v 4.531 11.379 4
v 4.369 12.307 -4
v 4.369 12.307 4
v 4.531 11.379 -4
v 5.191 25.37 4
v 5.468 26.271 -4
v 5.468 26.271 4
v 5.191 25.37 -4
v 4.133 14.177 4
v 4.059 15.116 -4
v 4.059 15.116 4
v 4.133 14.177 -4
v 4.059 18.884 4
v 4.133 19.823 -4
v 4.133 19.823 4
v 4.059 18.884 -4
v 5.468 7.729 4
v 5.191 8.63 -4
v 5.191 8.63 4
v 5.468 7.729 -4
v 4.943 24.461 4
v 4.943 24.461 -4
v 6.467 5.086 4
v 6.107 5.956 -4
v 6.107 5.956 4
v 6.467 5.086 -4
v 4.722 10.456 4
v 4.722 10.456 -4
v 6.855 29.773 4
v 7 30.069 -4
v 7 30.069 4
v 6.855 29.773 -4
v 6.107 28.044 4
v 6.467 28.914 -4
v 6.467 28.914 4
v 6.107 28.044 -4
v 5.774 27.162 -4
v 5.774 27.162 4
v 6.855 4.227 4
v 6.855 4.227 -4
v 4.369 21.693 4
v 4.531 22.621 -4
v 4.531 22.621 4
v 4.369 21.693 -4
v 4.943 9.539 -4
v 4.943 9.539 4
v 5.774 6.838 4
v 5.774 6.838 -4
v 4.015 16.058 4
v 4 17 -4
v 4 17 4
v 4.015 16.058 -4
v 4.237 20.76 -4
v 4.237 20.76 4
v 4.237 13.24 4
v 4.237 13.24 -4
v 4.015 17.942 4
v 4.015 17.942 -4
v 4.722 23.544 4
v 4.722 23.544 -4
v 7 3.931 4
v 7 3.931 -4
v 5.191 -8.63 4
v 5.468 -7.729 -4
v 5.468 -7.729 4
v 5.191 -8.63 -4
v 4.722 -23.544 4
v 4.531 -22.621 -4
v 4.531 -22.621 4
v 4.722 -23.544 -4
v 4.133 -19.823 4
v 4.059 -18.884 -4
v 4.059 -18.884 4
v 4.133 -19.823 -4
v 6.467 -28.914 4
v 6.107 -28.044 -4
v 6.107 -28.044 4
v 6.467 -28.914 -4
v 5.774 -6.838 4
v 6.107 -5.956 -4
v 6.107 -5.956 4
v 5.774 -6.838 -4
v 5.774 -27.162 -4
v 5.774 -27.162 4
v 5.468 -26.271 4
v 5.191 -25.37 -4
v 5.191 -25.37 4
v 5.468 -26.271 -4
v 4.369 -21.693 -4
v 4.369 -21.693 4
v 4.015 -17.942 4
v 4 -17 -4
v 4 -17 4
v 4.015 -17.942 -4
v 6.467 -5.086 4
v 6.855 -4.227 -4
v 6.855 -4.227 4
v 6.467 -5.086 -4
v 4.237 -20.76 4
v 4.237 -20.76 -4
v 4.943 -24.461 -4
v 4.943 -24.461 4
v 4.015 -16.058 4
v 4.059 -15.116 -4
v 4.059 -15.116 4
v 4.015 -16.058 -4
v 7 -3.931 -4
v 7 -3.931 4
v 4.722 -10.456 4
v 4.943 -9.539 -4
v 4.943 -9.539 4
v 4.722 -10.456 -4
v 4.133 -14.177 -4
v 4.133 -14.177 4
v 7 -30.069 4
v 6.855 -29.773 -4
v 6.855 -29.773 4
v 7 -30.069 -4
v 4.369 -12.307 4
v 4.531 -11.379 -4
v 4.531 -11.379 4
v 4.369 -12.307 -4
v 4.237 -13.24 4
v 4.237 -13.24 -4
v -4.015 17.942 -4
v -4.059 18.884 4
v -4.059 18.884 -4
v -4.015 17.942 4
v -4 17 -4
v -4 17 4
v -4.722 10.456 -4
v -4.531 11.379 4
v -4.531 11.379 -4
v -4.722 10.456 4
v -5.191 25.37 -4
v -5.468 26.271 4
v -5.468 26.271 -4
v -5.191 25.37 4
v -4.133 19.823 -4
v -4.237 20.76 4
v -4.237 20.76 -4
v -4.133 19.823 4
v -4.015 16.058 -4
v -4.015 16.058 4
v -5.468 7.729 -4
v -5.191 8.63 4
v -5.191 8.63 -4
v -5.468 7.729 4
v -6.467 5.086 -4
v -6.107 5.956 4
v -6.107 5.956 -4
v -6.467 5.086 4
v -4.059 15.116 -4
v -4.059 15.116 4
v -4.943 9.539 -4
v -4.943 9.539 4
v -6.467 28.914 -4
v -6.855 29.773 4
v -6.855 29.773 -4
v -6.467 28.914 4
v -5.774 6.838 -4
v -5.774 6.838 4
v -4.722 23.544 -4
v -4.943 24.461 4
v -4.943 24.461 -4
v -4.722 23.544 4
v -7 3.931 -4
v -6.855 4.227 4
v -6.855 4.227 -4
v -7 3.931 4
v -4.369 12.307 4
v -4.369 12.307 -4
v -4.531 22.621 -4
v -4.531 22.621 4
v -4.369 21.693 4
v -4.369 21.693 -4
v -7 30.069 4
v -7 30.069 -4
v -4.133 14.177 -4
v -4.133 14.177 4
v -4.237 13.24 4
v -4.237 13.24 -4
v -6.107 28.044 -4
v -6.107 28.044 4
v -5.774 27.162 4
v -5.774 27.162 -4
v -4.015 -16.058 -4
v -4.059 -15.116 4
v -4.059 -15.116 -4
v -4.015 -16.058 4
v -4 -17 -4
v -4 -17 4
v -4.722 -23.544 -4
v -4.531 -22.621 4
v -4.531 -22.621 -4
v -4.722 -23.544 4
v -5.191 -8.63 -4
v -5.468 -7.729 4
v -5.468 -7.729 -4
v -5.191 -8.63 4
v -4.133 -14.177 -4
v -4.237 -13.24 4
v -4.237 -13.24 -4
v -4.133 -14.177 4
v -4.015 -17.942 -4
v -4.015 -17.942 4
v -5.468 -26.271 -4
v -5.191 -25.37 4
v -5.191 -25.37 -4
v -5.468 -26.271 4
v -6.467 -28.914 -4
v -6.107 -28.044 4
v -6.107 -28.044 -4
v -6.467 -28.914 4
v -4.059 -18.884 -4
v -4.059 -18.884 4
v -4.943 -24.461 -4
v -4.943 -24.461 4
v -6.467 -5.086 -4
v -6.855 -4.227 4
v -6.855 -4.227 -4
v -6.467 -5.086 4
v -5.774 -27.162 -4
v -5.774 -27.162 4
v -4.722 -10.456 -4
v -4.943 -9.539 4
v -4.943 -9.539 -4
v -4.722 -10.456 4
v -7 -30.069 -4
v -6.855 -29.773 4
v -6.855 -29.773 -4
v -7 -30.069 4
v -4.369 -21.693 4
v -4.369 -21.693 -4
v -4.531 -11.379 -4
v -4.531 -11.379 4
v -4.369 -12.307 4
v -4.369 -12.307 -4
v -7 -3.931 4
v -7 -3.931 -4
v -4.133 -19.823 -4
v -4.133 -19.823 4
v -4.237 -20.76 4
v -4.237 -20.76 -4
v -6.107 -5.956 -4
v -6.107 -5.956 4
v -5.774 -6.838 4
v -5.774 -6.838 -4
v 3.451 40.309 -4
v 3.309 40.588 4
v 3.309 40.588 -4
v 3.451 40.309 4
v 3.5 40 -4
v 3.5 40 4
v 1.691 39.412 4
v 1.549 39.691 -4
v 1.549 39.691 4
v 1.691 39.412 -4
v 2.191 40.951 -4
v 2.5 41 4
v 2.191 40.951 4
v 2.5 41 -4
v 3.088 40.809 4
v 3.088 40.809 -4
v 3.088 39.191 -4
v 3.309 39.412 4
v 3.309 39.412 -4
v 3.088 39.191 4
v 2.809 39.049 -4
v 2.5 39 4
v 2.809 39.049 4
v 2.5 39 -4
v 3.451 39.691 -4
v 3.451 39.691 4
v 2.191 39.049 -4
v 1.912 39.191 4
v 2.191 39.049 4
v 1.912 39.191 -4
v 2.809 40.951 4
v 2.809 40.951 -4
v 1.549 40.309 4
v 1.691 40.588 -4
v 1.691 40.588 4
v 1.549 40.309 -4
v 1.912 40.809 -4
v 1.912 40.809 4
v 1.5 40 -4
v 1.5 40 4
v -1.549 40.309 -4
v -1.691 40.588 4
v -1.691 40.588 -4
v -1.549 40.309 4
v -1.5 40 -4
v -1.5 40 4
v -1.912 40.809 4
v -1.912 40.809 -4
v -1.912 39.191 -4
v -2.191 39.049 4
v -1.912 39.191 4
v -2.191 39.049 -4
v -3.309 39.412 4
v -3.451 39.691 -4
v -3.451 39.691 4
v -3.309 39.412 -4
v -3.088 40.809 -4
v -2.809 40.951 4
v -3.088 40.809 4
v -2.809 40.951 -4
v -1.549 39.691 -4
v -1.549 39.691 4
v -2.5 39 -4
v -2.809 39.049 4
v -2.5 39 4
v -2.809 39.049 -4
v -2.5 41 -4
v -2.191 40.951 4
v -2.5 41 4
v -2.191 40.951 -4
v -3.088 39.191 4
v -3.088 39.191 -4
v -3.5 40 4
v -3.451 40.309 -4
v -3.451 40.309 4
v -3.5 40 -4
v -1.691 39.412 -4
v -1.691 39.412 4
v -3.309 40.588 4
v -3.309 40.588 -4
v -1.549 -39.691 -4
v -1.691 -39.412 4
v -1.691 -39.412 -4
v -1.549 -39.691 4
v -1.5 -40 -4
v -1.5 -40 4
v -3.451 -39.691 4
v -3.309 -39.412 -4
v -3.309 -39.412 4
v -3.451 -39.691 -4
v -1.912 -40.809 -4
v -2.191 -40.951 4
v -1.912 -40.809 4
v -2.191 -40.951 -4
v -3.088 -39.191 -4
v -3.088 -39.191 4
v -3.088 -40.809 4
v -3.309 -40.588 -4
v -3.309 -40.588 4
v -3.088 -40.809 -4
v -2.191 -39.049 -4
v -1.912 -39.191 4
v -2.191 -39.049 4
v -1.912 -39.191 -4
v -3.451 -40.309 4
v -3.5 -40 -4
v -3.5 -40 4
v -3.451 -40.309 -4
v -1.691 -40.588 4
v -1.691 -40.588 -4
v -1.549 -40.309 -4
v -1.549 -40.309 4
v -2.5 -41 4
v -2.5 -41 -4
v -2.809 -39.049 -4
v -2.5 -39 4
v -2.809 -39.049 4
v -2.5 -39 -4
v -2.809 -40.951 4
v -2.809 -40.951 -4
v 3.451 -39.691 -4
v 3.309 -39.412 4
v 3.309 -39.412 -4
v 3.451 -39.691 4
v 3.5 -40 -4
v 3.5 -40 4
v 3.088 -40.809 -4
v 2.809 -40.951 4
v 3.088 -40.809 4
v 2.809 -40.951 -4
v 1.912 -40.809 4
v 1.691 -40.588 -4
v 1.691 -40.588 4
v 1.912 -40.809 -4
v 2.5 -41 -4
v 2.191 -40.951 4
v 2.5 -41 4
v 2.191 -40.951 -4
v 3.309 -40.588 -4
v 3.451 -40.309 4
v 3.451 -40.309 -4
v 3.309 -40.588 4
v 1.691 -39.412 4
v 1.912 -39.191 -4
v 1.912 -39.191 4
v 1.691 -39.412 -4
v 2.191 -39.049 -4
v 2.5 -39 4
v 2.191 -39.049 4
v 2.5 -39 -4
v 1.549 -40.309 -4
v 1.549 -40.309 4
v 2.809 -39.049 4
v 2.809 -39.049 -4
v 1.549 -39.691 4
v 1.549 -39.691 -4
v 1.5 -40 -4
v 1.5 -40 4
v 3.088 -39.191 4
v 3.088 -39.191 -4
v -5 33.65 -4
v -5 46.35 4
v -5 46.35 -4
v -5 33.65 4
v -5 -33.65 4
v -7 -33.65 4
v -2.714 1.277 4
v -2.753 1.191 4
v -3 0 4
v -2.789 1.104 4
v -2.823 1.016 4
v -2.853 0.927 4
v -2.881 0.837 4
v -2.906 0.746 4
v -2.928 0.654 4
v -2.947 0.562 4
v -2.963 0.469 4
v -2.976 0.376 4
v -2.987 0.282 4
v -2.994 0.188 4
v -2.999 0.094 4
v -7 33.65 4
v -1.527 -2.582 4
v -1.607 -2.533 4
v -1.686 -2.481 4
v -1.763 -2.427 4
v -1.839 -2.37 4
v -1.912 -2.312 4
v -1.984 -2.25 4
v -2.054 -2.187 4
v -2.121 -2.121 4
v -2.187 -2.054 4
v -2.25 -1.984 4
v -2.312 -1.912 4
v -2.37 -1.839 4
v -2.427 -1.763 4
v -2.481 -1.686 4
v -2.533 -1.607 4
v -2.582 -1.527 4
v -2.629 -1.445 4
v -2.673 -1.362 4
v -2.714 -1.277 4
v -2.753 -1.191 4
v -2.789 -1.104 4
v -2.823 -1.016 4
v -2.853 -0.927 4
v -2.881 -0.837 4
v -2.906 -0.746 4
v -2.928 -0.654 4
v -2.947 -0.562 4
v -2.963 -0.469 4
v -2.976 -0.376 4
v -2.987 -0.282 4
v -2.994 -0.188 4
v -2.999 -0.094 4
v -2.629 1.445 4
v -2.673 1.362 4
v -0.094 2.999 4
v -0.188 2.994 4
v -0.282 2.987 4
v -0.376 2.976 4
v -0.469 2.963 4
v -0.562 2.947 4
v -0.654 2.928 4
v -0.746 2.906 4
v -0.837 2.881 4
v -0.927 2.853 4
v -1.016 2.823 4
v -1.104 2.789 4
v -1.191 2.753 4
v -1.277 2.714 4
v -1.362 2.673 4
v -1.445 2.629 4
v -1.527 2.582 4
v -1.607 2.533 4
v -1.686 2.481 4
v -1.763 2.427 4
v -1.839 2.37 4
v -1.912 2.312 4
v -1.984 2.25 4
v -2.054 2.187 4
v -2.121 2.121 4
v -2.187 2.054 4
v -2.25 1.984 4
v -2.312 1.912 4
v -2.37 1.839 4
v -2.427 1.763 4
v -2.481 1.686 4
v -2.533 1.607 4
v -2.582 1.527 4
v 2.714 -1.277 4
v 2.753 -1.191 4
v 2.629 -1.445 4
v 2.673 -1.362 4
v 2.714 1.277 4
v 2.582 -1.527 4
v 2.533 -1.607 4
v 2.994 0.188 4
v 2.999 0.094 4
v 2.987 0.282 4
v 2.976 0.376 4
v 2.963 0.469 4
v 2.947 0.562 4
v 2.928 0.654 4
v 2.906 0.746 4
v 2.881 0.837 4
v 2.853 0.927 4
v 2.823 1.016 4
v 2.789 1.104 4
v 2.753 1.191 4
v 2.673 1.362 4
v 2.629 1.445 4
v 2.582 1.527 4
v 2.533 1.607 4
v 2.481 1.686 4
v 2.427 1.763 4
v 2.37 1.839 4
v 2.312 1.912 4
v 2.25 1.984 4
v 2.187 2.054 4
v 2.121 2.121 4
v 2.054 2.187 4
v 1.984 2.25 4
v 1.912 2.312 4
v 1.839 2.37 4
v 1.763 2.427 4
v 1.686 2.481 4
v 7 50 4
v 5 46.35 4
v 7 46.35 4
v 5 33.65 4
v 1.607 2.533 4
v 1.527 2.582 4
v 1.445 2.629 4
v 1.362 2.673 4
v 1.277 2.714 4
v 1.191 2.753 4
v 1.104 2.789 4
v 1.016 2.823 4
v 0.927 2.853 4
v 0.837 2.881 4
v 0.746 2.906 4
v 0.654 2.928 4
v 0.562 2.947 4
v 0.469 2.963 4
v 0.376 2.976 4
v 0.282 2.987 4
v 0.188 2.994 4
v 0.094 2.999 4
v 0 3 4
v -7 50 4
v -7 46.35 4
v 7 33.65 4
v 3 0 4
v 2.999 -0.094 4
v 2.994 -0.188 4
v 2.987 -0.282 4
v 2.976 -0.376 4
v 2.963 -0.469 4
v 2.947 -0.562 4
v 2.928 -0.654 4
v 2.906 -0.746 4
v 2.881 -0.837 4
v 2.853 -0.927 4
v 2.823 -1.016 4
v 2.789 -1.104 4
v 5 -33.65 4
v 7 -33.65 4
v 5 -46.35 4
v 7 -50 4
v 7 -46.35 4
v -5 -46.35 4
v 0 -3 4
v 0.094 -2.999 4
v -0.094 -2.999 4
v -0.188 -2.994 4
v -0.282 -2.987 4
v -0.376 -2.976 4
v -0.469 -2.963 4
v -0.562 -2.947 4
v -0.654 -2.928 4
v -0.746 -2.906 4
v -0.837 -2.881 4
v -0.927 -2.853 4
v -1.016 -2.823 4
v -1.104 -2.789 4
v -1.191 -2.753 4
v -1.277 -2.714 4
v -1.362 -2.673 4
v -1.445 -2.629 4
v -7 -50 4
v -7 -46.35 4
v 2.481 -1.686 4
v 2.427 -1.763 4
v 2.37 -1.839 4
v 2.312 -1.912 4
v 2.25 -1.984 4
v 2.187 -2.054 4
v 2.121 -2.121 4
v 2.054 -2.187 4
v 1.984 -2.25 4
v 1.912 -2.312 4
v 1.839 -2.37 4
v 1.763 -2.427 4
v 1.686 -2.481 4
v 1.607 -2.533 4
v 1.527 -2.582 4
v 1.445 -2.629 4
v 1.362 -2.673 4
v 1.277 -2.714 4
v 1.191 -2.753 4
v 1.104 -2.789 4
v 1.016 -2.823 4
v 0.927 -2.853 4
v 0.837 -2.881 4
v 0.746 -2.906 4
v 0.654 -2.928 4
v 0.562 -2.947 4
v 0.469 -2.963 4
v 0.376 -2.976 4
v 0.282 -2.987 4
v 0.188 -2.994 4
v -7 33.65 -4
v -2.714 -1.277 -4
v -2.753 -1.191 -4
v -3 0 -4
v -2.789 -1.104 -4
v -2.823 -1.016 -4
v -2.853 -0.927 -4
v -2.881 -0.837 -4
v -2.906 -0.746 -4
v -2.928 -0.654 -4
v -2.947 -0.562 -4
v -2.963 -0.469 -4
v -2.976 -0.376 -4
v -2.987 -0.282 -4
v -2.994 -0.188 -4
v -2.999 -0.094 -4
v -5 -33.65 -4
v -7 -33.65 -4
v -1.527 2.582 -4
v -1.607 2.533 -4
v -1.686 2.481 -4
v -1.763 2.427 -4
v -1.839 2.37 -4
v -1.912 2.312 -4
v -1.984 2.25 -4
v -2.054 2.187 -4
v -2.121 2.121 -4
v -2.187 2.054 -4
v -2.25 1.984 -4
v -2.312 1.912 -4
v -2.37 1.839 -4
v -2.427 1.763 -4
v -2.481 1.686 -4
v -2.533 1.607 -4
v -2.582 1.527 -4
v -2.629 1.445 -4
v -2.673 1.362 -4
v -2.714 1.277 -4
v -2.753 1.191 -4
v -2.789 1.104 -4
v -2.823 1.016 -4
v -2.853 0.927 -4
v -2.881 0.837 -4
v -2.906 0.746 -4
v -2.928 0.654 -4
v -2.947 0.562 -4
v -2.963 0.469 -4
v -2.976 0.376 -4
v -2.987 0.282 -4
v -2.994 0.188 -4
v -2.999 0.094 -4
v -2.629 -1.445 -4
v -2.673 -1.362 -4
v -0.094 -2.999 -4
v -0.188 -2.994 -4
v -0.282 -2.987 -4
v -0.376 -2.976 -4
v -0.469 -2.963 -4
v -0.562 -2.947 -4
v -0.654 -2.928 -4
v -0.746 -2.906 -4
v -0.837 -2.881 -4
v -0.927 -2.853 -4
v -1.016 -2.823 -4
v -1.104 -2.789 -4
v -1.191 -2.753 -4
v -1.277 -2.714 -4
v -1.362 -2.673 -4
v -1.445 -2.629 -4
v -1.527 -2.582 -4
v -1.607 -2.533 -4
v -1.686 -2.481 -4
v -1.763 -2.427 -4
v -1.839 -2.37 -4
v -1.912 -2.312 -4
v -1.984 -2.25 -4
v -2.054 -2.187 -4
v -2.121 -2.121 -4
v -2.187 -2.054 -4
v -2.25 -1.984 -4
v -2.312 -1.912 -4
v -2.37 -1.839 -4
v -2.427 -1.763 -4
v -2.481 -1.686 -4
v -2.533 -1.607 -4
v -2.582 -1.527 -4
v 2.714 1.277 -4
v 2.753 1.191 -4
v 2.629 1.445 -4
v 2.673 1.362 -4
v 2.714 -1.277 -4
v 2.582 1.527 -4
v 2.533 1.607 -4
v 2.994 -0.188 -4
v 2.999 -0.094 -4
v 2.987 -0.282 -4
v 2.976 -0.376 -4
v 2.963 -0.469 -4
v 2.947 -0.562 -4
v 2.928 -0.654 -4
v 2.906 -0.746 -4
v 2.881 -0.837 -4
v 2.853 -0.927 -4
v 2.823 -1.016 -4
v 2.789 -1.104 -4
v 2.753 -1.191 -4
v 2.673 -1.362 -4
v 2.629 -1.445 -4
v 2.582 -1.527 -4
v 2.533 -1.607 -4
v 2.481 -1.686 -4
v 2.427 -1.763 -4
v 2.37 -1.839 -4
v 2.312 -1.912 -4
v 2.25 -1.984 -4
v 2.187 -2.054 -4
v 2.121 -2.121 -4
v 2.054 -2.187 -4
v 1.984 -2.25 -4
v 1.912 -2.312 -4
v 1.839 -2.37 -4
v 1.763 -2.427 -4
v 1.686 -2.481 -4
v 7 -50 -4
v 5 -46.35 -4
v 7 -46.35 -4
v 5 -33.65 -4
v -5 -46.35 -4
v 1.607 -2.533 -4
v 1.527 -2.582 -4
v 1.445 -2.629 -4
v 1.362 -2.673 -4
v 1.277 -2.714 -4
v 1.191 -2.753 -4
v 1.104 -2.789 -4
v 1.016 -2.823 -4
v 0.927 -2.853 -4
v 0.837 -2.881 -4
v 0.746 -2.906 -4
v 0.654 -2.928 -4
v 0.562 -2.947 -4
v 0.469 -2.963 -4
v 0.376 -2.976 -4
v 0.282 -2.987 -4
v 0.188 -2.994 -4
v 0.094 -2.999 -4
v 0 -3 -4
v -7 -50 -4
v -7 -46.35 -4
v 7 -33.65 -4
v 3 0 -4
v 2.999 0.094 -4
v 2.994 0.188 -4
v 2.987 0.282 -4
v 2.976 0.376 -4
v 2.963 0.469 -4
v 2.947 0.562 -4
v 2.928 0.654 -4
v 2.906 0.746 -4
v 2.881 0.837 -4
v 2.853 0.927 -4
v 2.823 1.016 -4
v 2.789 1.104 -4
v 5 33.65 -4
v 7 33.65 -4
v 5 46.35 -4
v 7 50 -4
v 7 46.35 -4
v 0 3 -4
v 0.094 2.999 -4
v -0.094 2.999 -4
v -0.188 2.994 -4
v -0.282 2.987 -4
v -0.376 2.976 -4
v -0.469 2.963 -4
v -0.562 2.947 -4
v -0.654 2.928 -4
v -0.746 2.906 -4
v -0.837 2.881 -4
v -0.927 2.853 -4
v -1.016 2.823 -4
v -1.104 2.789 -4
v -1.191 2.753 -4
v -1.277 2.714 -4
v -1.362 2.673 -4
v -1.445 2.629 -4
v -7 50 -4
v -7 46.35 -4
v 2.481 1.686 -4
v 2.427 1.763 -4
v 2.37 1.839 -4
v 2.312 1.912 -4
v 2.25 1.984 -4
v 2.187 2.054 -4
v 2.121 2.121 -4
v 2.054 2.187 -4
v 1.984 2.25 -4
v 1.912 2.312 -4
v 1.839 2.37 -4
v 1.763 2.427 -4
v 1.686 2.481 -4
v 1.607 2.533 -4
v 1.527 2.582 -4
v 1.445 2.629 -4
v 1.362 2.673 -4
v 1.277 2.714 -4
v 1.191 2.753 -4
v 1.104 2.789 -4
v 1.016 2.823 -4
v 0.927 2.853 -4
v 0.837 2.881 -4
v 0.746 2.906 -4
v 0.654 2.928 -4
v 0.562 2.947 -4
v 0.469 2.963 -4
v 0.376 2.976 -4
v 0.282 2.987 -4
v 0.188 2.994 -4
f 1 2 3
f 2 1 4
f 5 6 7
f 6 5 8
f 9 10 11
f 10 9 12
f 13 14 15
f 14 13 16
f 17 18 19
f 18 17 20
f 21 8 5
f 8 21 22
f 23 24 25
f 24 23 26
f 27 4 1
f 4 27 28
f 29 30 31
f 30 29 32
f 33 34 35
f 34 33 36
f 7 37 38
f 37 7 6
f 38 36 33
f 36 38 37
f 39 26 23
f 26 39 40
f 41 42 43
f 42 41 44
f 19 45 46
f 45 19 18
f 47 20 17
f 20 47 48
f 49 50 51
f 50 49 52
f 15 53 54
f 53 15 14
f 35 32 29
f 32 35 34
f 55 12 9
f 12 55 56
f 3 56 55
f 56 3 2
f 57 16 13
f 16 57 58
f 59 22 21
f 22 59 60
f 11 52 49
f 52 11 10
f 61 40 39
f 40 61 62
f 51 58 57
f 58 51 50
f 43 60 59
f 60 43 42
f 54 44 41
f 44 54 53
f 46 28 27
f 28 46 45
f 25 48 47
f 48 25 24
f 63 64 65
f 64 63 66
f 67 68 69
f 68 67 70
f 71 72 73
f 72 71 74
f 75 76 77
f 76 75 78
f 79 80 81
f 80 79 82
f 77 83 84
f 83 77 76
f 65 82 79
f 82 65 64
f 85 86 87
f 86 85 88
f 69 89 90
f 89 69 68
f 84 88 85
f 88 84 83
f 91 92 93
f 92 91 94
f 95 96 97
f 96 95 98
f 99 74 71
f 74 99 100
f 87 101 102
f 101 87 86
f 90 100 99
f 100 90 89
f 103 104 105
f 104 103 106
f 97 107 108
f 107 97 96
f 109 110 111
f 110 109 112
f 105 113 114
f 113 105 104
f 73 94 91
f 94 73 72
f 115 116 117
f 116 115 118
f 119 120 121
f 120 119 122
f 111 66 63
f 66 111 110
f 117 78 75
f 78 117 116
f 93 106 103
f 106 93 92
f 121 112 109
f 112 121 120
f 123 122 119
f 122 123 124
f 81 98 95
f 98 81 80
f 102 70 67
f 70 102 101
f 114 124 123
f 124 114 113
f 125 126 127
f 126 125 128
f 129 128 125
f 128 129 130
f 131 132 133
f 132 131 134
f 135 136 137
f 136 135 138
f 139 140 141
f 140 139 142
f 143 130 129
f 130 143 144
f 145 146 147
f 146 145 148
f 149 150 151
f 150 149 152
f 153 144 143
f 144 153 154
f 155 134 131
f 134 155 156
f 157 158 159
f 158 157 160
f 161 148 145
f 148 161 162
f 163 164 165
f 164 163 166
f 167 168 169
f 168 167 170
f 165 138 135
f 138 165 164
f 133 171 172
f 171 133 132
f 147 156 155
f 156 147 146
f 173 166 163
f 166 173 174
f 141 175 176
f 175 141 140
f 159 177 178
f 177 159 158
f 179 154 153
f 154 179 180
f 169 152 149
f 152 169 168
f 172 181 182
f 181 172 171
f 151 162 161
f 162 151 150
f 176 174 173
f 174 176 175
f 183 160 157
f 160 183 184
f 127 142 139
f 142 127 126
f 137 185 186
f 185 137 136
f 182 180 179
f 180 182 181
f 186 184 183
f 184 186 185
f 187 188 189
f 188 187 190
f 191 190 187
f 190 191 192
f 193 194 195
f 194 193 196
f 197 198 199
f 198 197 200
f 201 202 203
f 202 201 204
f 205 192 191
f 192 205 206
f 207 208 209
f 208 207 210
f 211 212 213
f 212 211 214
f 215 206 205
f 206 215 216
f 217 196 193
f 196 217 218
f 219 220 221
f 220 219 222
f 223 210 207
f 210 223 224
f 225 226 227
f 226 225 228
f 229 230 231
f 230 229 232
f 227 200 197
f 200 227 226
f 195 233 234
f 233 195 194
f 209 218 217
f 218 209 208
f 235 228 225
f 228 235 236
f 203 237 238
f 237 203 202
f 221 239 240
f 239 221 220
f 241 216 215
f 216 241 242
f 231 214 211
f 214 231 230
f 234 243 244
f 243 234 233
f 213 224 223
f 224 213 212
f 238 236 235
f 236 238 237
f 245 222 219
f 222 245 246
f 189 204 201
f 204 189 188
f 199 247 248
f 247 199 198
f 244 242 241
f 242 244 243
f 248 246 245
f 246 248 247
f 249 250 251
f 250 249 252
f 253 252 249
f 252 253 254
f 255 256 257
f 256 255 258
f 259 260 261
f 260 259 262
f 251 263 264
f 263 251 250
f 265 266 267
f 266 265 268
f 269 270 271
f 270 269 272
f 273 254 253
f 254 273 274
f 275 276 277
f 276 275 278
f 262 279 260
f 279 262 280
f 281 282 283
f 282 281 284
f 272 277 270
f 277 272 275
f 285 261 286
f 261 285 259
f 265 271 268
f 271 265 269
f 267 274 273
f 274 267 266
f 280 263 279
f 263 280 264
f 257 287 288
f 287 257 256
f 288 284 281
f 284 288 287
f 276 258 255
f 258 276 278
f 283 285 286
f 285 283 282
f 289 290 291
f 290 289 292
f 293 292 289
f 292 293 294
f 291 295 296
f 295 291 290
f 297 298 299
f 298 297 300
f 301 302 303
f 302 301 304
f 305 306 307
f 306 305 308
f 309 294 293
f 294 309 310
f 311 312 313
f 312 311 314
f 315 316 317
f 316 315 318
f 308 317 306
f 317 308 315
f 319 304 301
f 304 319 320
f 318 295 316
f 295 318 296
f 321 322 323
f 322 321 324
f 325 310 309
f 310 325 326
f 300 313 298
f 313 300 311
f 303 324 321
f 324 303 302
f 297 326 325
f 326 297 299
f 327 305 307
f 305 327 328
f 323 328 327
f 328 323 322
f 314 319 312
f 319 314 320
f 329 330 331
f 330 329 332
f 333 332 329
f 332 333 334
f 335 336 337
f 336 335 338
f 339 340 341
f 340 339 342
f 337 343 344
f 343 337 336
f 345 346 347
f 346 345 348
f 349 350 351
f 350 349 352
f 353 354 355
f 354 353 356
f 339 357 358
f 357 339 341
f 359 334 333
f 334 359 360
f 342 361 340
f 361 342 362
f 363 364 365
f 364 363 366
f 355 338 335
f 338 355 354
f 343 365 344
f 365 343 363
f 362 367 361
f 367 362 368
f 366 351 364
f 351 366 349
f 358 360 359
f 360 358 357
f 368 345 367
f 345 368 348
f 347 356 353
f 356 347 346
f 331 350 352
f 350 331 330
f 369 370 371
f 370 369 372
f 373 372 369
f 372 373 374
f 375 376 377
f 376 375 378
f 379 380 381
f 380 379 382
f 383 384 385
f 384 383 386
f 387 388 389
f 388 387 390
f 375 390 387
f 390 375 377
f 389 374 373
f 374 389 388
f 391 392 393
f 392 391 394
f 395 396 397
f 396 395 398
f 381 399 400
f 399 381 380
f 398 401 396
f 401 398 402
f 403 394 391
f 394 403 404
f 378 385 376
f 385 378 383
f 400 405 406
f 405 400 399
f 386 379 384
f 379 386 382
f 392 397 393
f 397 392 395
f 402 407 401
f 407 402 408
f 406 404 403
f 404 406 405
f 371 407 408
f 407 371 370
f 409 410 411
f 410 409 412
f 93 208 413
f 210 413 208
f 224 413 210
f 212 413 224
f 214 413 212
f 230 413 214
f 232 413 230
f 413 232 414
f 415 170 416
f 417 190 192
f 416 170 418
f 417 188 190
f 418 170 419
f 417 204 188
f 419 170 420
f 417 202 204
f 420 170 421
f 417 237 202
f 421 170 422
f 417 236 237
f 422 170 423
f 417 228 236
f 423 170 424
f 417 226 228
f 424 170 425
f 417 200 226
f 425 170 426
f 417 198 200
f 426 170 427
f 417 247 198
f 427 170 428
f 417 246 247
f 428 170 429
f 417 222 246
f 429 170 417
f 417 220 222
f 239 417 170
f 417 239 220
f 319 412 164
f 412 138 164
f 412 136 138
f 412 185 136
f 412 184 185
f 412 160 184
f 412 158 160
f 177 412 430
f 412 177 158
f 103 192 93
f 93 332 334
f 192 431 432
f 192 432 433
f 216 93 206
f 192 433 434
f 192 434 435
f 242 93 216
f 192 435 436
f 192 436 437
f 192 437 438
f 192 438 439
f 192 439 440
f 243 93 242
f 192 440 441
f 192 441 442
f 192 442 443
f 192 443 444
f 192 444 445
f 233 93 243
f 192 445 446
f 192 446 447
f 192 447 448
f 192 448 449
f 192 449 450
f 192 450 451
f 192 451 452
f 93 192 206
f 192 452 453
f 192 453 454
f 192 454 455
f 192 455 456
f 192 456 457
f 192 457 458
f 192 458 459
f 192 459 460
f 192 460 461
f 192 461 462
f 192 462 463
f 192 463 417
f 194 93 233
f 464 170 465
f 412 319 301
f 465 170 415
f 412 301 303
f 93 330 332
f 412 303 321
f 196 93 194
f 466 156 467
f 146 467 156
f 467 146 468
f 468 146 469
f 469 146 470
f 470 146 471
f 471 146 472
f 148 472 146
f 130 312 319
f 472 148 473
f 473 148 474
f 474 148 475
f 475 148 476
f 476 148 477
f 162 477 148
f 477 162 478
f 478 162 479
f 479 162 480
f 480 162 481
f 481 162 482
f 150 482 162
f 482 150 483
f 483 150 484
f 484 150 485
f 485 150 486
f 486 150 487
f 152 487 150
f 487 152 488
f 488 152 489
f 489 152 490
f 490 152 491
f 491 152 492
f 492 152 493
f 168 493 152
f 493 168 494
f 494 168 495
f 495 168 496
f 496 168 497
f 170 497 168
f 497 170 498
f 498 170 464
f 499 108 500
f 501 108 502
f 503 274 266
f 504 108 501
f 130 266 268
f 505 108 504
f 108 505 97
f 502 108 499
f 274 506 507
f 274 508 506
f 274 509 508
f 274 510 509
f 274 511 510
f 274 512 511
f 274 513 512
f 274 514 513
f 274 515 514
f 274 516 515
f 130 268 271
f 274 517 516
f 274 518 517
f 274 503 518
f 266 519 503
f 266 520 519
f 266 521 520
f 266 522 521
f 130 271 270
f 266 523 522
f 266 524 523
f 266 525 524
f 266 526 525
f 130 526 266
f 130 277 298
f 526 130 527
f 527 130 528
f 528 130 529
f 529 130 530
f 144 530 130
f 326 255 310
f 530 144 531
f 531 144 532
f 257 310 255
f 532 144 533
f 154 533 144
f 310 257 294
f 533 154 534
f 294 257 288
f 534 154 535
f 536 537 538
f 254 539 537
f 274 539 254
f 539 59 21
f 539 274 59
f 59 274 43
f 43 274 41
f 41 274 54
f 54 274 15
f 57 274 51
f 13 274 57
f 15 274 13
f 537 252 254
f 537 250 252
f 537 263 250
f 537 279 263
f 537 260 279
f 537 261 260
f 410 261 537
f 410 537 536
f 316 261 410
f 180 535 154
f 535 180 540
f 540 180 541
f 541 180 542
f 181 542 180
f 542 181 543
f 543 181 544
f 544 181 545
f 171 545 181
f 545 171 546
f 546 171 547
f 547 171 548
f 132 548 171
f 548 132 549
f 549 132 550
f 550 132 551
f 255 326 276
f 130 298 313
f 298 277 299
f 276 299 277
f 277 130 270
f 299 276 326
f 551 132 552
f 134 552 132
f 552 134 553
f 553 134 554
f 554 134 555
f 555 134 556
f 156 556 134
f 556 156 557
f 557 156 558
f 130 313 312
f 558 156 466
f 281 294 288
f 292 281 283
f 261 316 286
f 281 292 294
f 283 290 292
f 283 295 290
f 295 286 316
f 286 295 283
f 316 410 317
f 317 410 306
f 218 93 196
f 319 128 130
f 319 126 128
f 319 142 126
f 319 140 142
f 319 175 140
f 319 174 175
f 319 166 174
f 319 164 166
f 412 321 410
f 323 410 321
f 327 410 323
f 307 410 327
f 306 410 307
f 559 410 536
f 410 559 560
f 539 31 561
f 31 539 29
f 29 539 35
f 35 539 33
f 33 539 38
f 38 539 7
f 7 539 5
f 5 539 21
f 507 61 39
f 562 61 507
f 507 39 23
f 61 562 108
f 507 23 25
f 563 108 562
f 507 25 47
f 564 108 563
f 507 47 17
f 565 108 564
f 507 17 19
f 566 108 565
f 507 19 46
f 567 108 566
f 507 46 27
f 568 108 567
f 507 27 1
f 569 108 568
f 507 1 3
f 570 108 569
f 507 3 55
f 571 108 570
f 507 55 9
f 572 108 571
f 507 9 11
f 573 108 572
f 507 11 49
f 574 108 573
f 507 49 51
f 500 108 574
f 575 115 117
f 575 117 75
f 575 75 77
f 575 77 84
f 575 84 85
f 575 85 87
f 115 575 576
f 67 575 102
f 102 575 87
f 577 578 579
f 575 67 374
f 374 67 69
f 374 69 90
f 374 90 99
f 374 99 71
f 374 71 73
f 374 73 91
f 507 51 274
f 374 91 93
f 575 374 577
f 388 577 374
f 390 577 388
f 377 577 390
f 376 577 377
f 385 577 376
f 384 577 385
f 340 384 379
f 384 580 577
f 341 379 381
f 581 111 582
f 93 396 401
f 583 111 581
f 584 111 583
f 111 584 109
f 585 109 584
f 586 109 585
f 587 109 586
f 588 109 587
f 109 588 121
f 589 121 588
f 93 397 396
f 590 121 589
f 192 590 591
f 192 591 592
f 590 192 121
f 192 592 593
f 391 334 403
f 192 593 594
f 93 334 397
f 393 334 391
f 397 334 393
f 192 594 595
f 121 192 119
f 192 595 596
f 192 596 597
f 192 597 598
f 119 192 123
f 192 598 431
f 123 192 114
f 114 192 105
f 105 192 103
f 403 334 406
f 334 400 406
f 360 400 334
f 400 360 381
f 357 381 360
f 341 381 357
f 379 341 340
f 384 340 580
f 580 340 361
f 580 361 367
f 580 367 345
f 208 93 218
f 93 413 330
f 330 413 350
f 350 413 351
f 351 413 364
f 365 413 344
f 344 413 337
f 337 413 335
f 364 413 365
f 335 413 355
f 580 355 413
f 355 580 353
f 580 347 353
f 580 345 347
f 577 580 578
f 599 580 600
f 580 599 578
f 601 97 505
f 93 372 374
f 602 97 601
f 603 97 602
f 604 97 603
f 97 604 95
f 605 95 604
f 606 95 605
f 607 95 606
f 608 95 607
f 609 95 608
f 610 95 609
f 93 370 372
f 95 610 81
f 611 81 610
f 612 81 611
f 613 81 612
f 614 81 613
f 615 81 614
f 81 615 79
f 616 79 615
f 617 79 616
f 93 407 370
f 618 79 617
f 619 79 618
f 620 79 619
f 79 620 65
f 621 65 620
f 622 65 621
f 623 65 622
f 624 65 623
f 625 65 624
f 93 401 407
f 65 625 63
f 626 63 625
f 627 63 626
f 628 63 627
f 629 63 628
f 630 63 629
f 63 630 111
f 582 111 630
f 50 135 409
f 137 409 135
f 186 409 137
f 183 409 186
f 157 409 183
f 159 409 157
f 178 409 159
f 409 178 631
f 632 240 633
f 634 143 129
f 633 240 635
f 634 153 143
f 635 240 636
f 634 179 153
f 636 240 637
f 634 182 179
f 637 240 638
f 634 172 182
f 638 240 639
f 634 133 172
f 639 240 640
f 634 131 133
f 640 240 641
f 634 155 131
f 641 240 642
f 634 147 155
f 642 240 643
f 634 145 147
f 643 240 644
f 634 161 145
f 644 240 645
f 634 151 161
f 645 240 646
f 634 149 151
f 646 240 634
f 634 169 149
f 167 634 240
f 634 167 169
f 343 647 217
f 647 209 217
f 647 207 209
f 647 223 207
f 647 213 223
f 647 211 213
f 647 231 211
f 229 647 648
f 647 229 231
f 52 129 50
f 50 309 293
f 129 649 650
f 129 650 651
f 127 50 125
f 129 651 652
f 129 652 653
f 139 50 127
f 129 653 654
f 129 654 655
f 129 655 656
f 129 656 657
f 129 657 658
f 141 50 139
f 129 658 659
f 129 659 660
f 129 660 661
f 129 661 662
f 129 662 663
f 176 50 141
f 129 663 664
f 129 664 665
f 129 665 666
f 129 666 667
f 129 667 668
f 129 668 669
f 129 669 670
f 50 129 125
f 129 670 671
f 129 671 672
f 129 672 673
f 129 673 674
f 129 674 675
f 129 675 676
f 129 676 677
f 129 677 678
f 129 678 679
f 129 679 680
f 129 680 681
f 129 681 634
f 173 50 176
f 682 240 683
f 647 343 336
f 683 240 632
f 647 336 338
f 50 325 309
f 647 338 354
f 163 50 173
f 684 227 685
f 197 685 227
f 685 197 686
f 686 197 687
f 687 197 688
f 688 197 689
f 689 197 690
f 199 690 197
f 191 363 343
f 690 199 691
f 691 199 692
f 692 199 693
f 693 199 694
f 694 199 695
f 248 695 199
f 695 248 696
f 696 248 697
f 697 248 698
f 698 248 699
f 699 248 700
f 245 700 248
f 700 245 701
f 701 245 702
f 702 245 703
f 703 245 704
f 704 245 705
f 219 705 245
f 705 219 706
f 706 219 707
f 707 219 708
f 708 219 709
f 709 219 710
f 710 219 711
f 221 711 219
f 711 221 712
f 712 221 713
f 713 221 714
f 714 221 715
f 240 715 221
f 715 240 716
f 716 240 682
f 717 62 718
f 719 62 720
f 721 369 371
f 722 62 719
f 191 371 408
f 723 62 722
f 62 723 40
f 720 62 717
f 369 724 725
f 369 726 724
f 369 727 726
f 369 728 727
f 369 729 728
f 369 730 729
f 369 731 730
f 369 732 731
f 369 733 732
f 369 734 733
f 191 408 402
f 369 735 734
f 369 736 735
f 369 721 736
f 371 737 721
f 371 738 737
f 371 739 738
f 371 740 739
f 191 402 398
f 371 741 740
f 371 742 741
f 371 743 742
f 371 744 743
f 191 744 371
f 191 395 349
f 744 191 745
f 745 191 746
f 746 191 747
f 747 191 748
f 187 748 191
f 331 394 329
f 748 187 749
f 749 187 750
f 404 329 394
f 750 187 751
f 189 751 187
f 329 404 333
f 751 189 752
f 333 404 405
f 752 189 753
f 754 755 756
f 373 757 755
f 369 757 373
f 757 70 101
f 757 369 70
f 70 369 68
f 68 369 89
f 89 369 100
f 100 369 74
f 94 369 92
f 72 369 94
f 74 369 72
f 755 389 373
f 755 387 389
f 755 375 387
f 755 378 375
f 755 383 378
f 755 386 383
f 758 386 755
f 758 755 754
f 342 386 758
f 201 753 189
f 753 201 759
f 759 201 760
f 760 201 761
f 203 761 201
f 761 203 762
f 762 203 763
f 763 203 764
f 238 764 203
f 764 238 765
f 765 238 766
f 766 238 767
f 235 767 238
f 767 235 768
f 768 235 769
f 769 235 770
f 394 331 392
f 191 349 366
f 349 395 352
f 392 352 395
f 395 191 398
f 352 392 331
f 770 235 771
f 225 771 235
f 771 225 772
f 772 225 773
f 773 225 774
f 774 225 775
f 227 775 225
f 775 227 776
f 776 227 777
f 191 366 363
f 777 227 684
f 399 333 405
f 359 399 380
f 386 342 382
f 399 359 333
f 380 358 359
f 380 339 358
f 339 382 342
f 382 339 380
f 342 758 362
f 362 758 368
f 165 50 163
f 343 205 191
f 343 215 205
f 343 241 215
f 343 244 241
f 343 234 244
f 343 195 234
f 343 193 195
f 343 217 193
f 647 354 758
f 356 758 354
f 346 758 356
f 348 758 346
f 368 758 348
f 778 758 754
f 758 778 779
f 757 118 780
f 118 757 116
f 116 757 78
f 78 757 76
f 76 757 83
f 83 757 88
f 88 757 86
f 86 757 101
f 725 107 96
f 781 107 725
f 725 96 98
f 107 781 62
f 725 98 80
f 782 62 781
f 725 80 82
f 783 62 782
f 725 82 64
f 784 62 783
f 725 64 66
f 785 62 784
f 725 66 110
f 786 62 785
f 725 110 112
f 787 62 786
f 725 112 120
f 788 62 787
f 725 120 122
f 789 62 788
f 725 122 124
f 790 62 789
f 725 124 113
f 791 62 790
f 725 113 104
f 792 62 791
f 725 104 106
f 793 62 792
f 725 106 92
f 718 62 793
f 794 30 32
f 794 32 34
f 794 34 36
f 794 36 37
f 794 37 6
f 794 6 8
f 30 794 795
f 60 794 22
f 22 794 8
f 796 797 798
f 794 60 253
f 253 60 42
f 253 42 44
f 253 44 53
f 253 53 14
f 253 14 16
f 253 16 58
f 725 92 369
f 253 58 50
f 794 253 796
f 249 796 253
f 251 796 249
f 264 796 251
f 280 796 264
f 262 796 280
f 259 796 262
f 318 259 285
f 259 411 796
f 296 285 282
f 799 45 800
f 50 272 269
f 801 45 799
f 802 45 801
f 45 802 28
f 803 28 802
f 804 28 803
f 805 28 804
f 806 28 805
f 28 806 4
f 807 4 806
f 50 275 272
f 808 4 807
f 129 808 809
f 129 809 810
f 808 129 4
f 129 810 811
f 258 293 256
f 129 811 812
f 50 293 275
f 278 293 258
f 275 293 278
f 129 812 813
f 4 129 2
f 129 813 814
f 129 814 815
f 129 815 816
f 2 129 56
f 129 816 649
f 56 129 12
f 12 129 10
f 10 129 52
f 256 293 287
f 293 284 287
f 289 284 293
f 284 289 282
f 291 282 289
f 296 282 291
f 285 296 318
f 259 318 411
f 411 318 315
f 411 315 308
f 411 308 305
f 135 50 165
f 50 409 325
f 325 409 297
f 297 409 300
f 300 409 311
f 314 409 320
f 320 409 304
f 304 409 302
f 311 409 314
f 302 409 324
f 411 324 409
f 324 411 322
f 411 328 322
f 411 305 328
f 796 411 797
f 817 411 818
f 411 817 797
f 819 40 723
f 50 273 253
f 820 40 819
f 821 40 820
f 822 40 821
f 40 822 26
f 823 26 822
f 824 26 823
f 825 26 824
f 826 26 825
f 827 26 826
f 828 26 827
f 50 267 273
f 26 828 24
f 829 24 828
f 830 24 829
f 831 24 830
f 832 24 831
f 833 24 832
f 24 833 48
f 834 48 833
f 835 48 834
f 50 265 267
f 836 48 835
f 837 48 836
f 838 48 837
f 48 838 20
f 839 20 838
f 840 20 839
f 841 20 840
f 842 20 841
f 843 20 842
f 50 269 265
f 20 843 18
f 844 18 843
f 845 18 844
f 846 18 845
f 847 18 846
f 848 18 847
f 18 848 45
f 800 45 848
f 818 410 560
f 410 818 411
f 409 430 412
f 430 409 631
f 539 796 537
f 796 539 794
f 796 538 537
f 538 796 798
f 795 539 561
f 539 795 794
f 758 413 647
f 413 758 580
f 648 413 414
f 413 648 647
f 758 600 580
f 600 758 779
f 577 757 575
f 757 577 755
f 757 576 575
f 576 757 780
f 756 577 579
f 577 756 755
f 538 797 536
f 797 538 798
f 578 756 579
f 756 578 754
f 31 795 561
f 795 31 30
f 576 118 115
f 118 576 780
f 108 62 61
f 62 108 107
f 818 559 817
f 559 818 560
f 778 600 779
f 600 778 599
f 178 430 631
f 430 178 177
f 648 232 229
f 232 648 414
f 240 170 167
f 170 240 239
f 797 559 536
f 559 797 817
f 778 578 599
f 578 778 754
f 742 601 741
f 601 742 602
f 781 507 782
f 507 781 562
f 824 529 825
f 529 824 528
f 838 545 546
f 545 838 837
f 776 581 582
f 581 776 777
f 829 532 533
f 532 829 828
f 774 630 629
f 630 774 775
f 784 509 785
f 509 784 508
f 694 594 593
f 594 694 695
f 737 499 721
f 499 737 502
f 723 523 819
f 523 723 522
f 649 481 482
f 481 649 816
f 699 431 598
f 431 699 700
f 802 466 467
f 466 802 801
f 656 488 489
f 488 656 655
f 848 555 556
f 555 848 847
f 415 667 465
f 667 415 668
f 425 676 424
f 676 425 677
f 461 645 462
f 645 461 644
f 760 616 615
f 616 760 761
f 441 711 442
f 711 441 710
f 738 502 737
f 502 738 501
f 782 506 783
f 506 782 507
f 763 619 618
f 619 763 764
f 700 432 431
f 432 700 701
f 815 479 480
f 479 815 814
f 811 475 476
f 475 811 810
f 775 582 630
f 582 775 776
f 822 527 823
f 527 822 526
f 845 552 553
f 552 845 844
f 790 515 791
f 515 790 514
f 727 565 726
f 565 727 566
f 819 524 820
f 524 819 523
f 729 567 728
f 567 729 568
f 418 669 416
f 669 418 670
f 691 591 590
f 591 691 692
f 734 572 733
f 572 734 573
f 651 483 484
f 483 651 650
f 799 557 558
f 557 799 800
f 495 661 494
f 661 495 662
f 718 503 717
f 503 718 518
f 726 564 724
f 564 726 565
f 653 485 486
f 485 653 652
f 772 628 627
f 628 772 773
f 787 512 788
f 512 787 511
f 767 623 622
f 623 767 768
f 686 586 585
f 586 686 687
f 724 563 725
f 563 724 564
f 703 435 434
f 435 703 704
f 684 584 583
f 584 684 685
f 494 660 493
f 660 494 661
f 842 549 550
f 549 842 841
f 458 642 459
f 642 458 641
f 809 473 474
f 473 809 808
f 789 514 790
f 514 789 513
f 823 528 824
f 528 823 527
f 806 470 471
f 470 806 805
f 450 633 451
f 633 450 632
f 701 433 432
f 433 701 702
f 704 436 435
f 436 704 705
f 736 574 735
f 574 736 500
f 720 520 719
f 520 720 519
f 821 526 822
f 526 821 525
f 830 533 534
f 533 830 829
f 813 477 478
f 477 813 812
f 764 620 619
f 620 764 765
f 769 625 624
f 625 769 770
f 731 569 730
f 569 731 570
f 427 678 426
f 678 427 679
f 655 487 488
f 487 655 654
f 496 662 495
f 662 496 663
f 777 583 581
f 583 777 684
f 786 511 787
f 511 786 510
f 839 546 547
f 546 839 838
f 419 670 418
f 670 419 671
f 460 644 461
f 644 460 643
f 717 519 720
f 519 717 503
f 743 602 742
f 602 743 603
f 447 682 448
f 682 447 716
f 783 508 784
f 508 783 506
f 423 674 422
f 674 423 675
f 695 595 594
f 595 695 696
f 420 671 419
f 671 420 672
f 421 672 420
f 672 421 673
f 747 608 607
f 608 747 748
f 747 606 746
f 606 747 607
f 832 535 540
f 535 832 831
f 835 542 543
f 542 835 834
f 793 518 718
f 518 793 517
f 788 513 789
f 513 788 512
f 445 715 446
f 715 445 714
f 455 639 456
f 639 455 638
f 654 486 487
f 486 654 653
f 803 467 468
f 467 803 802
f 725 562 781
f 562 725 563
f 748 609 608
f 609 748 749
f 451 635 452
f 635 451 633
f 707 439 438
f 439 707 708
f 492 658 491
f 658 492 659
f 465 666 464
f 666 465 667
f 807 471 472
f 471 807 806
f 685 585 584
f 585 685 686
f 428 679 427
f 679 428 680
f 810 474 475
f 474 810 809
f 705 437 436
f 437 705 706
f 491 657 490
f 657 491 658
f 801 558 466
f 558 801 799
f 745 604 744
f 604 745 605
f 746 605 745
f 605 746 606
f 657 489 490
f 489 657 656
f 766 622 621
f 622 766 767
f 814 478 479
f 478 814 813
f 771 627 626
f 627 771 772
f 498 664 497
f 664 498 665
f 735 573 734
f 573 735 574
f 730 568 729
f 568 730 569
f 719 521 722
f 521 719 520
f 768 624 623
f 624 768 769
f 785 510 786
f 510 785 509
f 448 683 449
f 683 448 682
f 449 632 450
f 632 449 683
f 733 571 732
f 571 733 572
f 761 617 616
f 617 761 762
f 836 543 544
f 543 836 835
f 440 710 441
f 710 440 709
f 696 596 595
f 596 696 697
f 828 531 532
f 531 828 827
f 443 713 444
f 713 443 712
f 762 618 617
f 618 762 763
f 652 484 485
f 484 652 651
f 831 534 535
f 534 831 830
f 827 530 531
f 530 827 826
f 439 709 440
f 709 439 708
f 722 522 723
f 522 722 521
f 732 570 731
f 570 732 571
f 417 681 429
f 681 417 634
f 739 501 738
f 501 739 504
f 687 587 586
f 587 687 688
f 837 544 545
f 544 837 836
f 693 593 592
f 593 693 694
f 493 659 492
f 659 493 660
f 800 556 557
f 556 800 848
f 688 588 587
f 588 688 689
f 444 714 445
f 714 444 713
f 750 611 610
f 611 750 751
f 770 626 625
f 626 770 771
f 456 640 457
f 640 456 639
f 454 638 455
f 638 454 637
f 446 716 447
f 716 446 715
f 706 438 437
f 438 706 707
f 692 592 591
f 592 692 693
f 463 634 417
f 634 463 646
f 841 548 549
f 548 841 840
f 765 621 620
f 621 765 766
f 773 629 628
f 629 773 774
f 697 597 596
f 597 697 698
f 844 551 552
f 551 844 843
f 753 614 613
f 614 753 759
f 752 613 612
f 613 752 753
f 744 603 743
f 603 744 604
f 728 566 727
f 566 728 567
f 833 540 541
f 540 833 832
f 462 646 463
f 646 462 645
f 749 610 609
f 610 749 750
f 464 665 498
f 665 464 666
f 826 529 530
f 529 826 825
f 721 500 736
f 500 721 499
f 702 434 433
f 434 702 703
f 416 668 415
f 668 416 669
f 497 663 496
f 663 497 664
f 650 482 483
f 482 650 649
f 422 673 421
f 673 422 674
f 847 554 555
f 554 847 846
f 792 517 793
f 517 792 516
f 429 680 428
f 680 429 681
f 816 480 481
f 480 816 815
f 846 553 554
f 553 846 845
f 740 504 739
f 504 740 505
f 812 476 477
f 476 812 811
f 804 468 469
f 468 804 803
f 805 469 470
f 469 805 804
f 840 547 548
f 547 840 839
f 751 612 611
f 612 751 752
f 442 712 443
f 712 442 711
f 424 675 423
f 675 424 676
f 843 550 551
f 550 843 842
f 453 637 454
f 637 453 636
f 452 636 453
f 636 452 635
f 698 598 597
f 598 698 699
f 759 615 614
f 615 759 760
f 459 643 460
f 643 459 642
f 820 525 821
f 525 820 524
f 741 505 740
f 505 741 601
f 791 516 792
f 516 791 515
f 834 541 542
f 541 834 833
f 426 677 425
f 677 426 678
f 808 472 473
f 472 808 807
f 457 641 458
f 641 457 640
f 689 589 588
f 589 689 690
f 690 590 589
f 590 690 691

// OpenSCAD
// backbone(90,14,8,23,12.5);
// backbone();

module
backbone(bl = 100, bw = 14, bh = 8, sl = 23, sw = 12.7)
{
    h_pos = ((bl - 20) / 2);
    difference()
    {
        // main
        translate([ -(bw / 2), -(bl / 2), -(bh / 2) ]) color("purple")
            cube([ bw, bl, bh ]);

        // servo body cutouts
        for (i = [
                 [ -16.5, h_pos, 0 ],
                 [ 16.5, h_pos, 0 ],
                 [ -16.5, -h_pos, 0 ],
                 [ 16.5, -h_pos, 0 ]
             ]) {
            translate(i) cube([ sl, sw, bh ], center = true);
        }

        // servo mount holes
        for (i = [
                 [ 2.5, h_pos, -10 ],
                 [ -2.5, h_pos, -10 ],
                 [ -2.5, -h_pos, -10 ],
                 [ 2.5, -h_pos, -10 ]
             ]) {
            translate(i) cylinder(r = 1, h = 20, $fn = 20);
        }

        // round side indents
        for (i = [
                 [ 34, 17, -5 ],
                 [ 34, -17, -5 ],
                 [ -34, 17, -5 ],
                 [ -34, -17, -5 ]
             ]) {
            translate(i) cylinder(r = 30, h = 10, $fn = 200);
        }

        // center hole
        translate([ 0, 0, -4 ]) cylinder(r = 3, h = 10, $fn = 200);
    }
}


backbone();
